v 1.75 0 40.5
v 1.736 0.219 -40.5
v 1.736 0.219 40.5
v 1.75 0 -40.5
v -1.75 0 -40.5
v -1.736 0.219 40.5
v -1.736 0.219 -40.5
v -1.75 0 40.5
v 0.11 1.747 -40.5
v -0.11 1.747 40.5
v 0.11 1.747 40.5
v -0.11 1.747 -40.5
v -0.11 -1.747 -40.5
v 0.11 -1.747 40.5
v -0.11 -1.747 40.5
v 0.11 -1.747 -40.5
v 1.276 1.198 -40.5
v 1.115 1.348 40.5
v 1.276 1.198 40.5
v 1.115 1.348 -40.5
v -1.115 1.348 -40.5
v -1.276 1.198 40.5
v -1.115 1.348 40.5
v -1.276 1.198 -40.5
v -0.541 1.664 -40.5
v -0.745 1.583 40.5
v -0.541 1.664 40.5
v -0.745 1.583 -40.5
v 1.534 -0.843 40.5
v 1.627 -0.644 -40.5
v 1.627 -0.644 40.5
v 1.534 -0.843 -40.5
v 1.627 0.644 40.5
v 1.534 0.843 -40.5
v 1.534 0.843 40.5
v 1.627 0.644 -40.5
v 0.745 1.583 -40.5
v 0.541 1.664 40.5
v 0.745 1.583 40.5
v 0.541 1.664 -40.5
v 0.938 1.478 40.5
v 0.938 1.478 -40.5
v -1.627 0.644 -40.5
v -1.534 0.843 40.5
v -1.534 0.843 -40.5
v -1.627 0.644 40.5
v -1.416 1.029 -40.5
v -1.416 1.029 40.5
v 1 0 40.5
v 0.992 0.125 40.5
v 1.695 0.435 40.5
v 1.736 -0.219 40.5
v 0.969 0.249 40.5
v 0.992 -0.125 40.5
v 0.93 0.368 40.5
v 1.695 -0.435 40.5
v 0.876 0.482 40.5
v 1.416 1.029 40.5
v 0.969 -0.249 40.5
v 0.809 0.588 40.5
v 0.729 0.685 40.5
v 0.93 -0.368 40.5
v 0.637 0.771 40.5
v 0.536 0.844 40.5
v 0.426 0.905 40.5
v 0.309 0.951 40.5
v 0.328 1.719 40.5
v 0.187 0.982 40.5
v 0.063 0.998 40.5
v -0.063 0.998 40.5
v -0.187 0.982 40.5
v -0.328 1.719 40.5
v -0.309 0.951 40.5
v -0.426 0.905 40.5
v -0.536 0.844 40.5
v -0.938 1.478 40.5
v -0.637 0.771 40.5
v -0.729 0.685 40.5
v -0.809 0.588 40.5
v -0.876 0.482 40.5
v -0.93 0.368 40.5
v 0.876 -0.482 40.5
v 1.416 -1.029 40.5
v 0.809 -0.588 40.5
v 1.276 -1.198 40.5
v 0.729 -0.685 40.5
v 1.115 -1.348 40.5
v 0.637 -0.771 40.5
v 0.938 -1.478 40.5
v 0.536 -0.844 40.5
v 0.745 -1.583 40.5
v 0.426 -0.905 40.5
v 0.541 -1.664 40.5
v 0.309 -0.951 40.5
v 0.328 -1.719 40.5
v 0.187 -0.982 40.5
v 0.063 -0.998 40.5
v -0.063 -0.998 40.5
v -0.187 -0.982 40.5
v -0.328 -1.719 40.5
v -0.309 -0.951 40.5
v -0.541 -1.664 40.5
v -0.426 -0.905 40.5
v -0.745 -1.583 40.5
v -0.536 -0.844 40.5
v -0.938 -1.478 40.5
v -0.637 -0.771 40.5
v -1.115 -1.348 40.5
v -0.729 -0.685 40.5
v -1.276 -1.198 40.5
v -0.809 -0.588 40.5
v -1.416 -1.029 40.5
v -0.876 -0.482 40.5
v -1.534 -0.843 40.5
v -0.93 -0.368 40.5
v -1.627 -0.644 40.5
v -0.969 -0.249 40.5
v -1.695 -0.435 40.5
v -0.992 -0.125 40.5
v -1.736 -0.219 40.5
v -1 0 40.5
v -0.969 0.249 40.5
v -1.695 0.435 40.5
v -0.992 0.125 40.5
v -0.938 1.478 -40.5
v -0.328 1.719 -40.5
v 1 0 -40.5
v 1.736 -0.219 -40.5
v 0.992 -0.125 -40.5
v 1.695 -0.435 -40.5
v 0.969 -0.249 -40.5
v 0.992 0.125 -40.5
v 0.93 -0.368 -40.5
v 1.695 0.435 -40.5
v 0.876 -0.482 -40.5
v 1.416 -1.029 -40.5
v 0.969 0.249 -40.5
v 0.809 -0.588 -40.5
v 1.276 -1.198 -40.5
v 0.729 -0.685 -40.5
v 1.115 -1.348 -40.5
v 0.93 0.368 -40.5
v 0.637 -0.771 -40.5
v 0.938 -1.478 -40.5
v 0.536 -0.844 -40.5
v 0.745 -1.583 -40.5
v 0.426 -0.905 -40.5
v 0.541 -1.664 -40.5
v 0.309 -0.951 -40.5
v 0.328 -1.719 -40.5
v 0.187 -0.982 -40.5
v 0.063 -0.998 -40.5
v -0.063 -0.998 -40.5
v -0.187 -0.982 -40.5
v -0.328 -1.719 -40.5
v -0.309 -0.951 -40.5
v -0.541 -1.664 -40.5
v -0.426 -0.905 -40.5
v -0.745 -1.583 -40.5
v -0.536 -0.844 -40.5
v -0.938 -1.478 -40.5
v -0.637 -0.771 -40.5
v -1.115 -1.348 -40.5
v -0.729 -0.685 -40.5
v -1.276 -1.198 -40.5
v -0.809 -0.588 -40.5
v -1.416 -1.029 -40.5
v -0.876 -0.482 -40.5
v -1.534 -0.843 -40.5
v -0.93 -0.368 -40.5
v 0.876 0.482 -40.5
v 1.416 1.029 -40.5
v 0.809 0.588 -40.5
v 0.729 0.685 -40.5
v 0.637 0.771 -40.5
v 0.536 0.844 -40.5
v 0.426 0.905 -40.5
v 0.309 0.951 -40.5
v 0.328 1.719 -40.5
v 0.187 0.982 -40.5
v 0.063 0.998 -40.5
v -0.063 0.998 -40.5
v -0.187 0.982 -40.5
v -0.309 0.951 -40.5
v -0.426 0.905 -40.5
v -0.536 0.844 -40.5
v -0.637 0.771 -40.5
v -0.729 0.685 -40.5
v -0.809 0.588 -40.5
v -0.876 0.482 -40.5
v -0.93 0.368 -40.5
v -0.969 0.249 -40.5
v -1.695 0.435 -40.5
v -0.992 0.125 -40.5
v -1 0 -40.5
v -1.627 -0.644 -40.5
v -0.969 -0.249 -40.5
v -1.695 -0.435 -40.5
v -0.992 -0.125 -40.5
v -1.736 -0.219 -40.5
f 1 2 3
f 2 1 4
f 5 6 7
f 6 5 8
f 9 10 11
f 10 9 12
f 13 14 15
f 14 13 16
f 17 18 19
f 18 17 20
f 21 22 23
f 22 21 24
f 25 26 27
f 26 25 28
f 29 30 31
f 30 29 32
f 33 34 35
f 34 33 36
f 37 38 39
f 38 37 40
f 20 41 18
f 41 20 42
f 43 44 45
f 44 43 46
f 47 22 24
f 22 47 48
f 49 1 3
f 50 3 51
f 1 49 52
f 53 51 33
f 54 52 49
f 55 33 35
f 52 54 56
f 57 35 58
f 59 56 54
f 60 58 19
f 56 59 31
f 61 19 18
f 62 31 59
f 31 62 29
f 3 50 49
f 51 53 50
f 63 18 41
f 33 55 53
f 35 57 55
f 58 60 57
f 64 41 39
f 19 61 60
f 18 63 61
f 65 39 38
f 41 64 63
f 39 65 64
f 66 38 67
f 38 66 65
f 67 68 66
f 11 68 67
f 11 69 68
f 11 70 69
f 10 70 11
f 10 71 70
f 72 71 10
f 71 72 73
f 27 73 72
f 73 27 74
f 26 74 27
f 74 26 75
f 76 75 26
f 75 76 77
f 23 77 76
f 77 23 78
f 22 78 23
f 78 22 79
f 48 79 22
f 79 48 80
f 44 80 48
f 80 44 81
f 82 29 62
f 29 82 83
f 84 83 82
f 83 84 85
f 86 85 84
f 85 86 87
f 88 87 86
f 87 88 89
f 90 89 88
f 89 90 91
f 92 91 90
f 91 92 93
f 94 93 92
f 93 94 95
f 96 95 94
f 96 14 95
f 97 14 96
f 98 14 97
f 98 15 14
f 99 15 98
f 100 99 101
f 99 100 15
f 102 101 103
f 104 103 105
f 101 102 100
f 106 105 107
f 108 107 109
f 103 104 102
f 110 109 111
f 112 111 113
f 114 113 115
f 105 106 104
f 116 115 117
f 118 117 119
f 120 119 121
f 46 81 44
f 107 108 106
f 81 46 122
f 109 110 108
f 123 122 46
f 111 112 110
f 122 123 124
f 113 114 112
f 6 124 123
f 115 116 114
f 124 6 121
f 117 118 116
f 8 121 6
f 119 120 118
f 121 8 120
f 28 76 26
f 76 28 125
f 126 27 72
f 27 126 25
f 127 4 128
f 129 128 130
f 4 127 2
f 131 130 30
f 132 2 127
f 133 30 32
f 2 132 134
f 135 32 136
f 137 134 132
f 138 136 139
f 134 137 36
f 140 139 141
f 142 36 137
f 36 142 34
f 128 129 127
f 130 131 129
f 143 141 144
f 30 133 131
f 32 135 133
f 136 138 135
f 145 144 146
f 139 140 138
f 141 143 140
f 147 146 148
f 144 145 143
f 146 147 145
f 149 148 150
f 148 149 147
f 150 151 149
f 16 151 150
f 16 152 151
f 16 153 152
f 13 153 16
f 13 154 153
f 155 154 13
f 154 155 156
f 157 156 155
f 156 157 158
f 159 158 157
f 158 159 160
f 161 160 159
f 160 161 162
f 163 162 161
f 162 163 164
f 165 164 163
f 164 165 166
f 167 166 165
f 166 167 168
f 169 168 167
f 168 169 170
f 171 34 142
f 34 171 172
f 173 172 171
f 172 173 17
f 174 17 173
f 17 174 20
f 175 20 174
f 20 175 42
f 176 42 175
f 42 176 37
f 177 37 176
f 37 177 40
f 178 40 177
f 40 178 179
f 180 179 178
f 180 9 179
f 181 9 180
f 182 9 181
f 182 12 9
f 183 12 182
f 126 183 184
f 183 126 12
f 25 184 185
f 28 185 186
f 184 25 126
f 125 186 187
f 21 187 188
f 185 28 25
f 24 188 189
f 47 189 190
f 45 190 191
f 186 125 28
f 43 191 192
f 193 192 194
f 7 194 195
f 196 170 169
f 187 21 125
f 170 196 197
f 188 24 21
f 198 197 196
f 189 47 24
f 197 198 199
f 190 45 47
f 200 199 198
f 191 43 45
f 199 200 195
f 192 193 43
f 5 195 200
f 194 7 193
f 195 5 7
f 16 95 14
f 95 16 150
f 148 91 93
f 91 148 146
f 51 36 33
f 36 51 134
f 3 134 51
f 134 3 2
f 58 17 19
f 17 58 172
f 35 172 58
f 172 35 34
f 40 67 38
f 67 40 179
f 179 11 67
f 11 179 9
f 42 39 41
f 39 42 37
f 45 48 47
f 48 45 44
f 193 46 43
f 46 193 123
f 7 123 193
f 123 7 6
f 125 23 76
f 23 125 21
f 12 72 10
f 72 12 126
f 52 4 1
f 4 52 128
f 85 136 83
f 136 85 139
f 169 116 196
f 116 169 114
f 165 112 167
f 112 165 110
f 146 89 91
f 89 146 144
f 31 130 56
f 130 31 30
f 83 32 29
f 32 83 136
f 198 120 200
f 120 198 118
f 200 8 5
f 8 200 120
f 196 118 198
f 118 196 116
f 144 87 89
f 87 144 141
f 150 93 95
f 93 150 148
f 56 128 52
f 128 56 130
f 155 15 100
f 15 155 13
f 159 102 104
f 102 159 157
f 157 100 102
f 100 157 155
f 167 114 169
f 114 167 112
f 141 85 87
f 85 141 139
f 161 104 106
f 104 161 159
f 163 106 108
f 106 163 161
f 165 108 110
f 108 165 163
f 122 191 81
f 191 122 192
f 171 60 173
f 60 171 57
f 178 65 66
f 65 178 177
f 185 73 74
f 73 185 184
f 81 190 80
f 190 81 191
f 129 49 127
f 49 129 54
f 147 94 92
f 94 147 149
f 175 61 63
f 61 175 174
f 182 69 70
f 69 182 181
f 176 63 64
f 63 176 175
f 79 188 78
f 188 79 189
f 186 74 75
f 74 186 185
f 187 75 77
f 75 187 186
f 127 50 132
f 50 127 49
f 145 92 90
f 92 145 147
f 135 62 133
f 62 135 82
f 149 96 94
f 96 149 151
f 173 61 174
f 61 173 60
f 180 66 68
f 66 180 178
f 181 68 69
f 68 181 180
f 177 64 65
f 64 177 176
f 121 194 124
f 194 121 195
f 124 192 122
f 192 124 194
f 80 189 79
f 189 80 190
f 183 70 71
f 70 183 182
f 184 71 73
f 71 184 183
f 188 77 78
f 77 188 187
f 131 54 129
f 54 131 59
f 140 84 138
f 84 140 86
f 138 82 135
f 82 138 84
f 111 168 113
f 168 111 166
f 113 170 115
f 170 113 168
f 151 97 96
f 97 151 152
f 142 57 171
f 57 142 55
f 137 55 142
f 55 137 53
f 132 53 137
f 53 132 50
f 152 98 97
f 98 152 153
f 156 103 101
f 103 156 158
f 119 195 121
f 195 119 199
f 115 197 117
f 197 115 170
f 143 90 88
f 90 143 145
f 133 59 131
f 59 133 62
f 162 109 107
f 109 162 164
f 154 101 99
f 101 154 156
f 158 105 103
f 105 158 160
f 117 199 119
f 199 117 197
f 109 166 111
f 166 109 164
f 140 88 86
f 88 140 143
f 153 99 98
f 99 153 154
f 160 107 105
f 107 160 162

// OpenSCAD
$fn = 50;


difference() {
	union() {
		translate(v = [0, 0, -40.5000000000]) {
			cylinder(h = 81, r = 1.7500000000);
		}
	}
	union() {
		translate(v = [0, 0, -100.0000000000]) {
			cylinder(h = 200, r = 1.0000000000);
		}
	}
}
